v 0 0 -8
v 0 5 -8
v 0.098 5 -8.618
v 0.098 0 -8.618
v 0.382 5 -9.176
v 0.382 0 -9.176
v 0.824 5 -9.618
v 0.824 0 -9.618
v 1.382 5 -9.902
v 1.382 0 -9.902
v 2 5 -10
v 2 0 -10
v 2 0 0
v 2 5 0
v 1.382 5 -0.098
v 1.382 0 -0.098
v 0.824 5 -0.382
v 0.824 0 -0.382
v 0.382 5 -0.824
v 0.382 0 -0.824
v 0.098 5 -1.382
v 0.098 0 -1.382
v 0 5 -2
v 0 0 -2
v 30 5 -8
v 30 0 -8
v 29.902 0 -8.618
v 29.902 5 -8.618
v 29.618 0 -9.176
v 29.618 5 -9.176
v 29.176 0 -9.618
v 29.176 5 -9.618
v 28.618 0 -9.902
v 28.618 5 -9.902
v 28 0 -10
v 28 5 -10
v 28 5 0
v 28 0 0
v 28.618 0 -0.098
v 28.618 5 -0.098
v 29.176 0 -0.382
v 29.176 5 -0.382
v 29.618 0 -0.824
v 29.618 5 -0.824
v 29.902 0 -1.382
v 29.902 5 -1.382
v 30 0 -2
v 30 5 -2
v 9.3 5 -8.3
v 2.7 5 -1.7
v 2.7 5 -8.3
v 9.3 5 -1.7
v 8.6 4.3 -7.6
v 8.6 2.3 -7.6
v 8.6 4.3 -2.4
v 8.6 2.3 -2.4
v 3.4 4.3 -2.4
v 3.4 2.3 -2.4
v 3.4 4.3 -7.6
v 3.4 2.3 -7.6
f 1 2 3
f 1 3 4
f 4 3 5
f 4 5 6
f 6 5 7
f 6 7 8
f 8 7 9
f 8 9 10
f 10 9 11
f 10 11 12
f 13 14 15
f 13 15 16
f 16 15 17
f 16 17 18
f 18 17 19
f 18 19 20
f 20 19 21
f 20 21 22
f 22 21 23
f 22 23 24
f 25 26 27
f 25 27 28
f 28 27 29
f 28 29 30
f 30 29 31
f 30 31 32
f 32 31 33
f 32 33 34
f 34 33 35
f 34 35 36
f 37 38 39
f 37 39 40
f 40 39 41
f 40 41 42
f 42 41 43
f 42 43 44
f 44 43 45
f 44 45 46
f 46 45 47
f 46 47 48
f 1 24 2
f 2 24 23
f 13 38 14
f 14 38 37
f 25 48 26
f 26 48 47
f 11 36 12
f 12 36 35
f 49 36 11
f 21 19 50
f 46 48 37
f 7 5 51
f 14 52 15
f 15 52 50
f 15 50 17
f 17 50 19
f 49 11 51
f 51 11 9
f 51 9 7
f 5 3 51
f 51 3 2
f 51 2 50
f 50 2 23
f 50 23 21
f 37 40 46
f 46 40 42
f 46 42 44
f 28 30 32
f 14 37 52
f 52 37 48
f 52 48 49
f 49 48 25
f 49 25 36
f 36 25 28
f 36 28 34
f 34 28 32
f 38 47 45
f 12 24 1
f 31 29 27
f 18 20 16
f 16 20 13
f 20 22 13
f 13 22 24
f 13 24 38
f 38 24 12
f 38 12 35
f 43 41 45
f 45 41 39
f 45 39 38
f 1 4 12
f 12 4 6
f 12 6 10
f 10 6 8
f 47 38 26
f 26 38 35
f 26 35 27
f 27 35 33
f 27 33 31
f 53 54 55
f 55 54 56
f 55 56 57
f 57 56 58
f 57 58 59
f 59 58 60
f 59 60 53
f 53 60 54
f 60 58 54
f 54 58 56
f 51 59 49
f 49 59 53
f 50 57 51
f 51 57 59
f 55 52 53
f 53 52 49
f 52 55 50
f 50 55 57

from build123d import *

# Parameters (mm, degrees)
ESBO_O1_W                = 30
ESBO_O1_H                = 10
RESSALTO_EXTRUS_O1_DEPTH = 5
ESBO_O2_W                = 5.2
ESBO_O2_H                = 5.2
CORTE_EXTRUS_O1_DEPTH    = 2.7
CHANFRO1_SIZE            = 0.7
FILETE1_R                = 2
FILETE2_R                = 2
FILETE3_R                = 2
FILETE4_R                = 2


with BuildPart() as part:
    # Esboço1 → Ressalto-extrusão1 (new body)
    with BuildSketch(Plane(origin=(0, 0, 0), x_dir=(1, 0, 0), z_dir=(0, 1, 0))):
        with Locations((15, 5)):
            Rectangle(ESBO_O1_W, ESBO_O1_H)
    extrude(amount=RESSALTO_EXTRUS_O1_DEPTH)

    # Esboço2 → Corte-extrusão1 (cut)
    with BuildSketch(Plane(origin=(0, 5, 0), x_dir=(1, 0, 0), z_dir=(0, 1, 0))):
        with Locations((6, 5)):
            Rectangle(ESBO_O2_W, ESBO_O2_H)
    extrude(amount=-CORTE_EXTRUS_O1_DEPTH, mode=Mode.SUBTRACT)

    # Chanfro1
    chanfro1_edges = [part.edges().sort_by_distance(p)[0] for p in [
        (8.6, 5, -5),
        (6, 5, -7.6),
        (3.4, 5, -5),
        (6, 5, -2.4),
    ]]
    chamfer(chanfro1_edges, length=CHANFRO1_SIZE)

    # Filete1
    filete1_edges = [part.edges().sort_by_distance(p)[0] for p in [
        (30, 2.5, 0),
    ]]
    fillet(filete1_edges, radius=FILETE1_R)

    # Filete2
    filete2_edges = [part.edges().sort_by_distance(p)[0] for p in [
        (30, 2.5, -10),
    ]]
    fillet(filete2_edges, radius=FILETE2_R)

    # Filete3
    filete3_edges = [part.edges().sort_by_distance(p)[0] for p in [
        (0, 2.5, 0),
    ]]
    fillet(filete3_edges, radius=FILETE3_R)

    # Filete4
    filete4_edges = [part.edges().sort_by_distance(p)[0] for p in [
        (0, 2.5, -10),
    ]]
    fillet(filete4_edges, radius=FILETE4_R)


solid = part.part
